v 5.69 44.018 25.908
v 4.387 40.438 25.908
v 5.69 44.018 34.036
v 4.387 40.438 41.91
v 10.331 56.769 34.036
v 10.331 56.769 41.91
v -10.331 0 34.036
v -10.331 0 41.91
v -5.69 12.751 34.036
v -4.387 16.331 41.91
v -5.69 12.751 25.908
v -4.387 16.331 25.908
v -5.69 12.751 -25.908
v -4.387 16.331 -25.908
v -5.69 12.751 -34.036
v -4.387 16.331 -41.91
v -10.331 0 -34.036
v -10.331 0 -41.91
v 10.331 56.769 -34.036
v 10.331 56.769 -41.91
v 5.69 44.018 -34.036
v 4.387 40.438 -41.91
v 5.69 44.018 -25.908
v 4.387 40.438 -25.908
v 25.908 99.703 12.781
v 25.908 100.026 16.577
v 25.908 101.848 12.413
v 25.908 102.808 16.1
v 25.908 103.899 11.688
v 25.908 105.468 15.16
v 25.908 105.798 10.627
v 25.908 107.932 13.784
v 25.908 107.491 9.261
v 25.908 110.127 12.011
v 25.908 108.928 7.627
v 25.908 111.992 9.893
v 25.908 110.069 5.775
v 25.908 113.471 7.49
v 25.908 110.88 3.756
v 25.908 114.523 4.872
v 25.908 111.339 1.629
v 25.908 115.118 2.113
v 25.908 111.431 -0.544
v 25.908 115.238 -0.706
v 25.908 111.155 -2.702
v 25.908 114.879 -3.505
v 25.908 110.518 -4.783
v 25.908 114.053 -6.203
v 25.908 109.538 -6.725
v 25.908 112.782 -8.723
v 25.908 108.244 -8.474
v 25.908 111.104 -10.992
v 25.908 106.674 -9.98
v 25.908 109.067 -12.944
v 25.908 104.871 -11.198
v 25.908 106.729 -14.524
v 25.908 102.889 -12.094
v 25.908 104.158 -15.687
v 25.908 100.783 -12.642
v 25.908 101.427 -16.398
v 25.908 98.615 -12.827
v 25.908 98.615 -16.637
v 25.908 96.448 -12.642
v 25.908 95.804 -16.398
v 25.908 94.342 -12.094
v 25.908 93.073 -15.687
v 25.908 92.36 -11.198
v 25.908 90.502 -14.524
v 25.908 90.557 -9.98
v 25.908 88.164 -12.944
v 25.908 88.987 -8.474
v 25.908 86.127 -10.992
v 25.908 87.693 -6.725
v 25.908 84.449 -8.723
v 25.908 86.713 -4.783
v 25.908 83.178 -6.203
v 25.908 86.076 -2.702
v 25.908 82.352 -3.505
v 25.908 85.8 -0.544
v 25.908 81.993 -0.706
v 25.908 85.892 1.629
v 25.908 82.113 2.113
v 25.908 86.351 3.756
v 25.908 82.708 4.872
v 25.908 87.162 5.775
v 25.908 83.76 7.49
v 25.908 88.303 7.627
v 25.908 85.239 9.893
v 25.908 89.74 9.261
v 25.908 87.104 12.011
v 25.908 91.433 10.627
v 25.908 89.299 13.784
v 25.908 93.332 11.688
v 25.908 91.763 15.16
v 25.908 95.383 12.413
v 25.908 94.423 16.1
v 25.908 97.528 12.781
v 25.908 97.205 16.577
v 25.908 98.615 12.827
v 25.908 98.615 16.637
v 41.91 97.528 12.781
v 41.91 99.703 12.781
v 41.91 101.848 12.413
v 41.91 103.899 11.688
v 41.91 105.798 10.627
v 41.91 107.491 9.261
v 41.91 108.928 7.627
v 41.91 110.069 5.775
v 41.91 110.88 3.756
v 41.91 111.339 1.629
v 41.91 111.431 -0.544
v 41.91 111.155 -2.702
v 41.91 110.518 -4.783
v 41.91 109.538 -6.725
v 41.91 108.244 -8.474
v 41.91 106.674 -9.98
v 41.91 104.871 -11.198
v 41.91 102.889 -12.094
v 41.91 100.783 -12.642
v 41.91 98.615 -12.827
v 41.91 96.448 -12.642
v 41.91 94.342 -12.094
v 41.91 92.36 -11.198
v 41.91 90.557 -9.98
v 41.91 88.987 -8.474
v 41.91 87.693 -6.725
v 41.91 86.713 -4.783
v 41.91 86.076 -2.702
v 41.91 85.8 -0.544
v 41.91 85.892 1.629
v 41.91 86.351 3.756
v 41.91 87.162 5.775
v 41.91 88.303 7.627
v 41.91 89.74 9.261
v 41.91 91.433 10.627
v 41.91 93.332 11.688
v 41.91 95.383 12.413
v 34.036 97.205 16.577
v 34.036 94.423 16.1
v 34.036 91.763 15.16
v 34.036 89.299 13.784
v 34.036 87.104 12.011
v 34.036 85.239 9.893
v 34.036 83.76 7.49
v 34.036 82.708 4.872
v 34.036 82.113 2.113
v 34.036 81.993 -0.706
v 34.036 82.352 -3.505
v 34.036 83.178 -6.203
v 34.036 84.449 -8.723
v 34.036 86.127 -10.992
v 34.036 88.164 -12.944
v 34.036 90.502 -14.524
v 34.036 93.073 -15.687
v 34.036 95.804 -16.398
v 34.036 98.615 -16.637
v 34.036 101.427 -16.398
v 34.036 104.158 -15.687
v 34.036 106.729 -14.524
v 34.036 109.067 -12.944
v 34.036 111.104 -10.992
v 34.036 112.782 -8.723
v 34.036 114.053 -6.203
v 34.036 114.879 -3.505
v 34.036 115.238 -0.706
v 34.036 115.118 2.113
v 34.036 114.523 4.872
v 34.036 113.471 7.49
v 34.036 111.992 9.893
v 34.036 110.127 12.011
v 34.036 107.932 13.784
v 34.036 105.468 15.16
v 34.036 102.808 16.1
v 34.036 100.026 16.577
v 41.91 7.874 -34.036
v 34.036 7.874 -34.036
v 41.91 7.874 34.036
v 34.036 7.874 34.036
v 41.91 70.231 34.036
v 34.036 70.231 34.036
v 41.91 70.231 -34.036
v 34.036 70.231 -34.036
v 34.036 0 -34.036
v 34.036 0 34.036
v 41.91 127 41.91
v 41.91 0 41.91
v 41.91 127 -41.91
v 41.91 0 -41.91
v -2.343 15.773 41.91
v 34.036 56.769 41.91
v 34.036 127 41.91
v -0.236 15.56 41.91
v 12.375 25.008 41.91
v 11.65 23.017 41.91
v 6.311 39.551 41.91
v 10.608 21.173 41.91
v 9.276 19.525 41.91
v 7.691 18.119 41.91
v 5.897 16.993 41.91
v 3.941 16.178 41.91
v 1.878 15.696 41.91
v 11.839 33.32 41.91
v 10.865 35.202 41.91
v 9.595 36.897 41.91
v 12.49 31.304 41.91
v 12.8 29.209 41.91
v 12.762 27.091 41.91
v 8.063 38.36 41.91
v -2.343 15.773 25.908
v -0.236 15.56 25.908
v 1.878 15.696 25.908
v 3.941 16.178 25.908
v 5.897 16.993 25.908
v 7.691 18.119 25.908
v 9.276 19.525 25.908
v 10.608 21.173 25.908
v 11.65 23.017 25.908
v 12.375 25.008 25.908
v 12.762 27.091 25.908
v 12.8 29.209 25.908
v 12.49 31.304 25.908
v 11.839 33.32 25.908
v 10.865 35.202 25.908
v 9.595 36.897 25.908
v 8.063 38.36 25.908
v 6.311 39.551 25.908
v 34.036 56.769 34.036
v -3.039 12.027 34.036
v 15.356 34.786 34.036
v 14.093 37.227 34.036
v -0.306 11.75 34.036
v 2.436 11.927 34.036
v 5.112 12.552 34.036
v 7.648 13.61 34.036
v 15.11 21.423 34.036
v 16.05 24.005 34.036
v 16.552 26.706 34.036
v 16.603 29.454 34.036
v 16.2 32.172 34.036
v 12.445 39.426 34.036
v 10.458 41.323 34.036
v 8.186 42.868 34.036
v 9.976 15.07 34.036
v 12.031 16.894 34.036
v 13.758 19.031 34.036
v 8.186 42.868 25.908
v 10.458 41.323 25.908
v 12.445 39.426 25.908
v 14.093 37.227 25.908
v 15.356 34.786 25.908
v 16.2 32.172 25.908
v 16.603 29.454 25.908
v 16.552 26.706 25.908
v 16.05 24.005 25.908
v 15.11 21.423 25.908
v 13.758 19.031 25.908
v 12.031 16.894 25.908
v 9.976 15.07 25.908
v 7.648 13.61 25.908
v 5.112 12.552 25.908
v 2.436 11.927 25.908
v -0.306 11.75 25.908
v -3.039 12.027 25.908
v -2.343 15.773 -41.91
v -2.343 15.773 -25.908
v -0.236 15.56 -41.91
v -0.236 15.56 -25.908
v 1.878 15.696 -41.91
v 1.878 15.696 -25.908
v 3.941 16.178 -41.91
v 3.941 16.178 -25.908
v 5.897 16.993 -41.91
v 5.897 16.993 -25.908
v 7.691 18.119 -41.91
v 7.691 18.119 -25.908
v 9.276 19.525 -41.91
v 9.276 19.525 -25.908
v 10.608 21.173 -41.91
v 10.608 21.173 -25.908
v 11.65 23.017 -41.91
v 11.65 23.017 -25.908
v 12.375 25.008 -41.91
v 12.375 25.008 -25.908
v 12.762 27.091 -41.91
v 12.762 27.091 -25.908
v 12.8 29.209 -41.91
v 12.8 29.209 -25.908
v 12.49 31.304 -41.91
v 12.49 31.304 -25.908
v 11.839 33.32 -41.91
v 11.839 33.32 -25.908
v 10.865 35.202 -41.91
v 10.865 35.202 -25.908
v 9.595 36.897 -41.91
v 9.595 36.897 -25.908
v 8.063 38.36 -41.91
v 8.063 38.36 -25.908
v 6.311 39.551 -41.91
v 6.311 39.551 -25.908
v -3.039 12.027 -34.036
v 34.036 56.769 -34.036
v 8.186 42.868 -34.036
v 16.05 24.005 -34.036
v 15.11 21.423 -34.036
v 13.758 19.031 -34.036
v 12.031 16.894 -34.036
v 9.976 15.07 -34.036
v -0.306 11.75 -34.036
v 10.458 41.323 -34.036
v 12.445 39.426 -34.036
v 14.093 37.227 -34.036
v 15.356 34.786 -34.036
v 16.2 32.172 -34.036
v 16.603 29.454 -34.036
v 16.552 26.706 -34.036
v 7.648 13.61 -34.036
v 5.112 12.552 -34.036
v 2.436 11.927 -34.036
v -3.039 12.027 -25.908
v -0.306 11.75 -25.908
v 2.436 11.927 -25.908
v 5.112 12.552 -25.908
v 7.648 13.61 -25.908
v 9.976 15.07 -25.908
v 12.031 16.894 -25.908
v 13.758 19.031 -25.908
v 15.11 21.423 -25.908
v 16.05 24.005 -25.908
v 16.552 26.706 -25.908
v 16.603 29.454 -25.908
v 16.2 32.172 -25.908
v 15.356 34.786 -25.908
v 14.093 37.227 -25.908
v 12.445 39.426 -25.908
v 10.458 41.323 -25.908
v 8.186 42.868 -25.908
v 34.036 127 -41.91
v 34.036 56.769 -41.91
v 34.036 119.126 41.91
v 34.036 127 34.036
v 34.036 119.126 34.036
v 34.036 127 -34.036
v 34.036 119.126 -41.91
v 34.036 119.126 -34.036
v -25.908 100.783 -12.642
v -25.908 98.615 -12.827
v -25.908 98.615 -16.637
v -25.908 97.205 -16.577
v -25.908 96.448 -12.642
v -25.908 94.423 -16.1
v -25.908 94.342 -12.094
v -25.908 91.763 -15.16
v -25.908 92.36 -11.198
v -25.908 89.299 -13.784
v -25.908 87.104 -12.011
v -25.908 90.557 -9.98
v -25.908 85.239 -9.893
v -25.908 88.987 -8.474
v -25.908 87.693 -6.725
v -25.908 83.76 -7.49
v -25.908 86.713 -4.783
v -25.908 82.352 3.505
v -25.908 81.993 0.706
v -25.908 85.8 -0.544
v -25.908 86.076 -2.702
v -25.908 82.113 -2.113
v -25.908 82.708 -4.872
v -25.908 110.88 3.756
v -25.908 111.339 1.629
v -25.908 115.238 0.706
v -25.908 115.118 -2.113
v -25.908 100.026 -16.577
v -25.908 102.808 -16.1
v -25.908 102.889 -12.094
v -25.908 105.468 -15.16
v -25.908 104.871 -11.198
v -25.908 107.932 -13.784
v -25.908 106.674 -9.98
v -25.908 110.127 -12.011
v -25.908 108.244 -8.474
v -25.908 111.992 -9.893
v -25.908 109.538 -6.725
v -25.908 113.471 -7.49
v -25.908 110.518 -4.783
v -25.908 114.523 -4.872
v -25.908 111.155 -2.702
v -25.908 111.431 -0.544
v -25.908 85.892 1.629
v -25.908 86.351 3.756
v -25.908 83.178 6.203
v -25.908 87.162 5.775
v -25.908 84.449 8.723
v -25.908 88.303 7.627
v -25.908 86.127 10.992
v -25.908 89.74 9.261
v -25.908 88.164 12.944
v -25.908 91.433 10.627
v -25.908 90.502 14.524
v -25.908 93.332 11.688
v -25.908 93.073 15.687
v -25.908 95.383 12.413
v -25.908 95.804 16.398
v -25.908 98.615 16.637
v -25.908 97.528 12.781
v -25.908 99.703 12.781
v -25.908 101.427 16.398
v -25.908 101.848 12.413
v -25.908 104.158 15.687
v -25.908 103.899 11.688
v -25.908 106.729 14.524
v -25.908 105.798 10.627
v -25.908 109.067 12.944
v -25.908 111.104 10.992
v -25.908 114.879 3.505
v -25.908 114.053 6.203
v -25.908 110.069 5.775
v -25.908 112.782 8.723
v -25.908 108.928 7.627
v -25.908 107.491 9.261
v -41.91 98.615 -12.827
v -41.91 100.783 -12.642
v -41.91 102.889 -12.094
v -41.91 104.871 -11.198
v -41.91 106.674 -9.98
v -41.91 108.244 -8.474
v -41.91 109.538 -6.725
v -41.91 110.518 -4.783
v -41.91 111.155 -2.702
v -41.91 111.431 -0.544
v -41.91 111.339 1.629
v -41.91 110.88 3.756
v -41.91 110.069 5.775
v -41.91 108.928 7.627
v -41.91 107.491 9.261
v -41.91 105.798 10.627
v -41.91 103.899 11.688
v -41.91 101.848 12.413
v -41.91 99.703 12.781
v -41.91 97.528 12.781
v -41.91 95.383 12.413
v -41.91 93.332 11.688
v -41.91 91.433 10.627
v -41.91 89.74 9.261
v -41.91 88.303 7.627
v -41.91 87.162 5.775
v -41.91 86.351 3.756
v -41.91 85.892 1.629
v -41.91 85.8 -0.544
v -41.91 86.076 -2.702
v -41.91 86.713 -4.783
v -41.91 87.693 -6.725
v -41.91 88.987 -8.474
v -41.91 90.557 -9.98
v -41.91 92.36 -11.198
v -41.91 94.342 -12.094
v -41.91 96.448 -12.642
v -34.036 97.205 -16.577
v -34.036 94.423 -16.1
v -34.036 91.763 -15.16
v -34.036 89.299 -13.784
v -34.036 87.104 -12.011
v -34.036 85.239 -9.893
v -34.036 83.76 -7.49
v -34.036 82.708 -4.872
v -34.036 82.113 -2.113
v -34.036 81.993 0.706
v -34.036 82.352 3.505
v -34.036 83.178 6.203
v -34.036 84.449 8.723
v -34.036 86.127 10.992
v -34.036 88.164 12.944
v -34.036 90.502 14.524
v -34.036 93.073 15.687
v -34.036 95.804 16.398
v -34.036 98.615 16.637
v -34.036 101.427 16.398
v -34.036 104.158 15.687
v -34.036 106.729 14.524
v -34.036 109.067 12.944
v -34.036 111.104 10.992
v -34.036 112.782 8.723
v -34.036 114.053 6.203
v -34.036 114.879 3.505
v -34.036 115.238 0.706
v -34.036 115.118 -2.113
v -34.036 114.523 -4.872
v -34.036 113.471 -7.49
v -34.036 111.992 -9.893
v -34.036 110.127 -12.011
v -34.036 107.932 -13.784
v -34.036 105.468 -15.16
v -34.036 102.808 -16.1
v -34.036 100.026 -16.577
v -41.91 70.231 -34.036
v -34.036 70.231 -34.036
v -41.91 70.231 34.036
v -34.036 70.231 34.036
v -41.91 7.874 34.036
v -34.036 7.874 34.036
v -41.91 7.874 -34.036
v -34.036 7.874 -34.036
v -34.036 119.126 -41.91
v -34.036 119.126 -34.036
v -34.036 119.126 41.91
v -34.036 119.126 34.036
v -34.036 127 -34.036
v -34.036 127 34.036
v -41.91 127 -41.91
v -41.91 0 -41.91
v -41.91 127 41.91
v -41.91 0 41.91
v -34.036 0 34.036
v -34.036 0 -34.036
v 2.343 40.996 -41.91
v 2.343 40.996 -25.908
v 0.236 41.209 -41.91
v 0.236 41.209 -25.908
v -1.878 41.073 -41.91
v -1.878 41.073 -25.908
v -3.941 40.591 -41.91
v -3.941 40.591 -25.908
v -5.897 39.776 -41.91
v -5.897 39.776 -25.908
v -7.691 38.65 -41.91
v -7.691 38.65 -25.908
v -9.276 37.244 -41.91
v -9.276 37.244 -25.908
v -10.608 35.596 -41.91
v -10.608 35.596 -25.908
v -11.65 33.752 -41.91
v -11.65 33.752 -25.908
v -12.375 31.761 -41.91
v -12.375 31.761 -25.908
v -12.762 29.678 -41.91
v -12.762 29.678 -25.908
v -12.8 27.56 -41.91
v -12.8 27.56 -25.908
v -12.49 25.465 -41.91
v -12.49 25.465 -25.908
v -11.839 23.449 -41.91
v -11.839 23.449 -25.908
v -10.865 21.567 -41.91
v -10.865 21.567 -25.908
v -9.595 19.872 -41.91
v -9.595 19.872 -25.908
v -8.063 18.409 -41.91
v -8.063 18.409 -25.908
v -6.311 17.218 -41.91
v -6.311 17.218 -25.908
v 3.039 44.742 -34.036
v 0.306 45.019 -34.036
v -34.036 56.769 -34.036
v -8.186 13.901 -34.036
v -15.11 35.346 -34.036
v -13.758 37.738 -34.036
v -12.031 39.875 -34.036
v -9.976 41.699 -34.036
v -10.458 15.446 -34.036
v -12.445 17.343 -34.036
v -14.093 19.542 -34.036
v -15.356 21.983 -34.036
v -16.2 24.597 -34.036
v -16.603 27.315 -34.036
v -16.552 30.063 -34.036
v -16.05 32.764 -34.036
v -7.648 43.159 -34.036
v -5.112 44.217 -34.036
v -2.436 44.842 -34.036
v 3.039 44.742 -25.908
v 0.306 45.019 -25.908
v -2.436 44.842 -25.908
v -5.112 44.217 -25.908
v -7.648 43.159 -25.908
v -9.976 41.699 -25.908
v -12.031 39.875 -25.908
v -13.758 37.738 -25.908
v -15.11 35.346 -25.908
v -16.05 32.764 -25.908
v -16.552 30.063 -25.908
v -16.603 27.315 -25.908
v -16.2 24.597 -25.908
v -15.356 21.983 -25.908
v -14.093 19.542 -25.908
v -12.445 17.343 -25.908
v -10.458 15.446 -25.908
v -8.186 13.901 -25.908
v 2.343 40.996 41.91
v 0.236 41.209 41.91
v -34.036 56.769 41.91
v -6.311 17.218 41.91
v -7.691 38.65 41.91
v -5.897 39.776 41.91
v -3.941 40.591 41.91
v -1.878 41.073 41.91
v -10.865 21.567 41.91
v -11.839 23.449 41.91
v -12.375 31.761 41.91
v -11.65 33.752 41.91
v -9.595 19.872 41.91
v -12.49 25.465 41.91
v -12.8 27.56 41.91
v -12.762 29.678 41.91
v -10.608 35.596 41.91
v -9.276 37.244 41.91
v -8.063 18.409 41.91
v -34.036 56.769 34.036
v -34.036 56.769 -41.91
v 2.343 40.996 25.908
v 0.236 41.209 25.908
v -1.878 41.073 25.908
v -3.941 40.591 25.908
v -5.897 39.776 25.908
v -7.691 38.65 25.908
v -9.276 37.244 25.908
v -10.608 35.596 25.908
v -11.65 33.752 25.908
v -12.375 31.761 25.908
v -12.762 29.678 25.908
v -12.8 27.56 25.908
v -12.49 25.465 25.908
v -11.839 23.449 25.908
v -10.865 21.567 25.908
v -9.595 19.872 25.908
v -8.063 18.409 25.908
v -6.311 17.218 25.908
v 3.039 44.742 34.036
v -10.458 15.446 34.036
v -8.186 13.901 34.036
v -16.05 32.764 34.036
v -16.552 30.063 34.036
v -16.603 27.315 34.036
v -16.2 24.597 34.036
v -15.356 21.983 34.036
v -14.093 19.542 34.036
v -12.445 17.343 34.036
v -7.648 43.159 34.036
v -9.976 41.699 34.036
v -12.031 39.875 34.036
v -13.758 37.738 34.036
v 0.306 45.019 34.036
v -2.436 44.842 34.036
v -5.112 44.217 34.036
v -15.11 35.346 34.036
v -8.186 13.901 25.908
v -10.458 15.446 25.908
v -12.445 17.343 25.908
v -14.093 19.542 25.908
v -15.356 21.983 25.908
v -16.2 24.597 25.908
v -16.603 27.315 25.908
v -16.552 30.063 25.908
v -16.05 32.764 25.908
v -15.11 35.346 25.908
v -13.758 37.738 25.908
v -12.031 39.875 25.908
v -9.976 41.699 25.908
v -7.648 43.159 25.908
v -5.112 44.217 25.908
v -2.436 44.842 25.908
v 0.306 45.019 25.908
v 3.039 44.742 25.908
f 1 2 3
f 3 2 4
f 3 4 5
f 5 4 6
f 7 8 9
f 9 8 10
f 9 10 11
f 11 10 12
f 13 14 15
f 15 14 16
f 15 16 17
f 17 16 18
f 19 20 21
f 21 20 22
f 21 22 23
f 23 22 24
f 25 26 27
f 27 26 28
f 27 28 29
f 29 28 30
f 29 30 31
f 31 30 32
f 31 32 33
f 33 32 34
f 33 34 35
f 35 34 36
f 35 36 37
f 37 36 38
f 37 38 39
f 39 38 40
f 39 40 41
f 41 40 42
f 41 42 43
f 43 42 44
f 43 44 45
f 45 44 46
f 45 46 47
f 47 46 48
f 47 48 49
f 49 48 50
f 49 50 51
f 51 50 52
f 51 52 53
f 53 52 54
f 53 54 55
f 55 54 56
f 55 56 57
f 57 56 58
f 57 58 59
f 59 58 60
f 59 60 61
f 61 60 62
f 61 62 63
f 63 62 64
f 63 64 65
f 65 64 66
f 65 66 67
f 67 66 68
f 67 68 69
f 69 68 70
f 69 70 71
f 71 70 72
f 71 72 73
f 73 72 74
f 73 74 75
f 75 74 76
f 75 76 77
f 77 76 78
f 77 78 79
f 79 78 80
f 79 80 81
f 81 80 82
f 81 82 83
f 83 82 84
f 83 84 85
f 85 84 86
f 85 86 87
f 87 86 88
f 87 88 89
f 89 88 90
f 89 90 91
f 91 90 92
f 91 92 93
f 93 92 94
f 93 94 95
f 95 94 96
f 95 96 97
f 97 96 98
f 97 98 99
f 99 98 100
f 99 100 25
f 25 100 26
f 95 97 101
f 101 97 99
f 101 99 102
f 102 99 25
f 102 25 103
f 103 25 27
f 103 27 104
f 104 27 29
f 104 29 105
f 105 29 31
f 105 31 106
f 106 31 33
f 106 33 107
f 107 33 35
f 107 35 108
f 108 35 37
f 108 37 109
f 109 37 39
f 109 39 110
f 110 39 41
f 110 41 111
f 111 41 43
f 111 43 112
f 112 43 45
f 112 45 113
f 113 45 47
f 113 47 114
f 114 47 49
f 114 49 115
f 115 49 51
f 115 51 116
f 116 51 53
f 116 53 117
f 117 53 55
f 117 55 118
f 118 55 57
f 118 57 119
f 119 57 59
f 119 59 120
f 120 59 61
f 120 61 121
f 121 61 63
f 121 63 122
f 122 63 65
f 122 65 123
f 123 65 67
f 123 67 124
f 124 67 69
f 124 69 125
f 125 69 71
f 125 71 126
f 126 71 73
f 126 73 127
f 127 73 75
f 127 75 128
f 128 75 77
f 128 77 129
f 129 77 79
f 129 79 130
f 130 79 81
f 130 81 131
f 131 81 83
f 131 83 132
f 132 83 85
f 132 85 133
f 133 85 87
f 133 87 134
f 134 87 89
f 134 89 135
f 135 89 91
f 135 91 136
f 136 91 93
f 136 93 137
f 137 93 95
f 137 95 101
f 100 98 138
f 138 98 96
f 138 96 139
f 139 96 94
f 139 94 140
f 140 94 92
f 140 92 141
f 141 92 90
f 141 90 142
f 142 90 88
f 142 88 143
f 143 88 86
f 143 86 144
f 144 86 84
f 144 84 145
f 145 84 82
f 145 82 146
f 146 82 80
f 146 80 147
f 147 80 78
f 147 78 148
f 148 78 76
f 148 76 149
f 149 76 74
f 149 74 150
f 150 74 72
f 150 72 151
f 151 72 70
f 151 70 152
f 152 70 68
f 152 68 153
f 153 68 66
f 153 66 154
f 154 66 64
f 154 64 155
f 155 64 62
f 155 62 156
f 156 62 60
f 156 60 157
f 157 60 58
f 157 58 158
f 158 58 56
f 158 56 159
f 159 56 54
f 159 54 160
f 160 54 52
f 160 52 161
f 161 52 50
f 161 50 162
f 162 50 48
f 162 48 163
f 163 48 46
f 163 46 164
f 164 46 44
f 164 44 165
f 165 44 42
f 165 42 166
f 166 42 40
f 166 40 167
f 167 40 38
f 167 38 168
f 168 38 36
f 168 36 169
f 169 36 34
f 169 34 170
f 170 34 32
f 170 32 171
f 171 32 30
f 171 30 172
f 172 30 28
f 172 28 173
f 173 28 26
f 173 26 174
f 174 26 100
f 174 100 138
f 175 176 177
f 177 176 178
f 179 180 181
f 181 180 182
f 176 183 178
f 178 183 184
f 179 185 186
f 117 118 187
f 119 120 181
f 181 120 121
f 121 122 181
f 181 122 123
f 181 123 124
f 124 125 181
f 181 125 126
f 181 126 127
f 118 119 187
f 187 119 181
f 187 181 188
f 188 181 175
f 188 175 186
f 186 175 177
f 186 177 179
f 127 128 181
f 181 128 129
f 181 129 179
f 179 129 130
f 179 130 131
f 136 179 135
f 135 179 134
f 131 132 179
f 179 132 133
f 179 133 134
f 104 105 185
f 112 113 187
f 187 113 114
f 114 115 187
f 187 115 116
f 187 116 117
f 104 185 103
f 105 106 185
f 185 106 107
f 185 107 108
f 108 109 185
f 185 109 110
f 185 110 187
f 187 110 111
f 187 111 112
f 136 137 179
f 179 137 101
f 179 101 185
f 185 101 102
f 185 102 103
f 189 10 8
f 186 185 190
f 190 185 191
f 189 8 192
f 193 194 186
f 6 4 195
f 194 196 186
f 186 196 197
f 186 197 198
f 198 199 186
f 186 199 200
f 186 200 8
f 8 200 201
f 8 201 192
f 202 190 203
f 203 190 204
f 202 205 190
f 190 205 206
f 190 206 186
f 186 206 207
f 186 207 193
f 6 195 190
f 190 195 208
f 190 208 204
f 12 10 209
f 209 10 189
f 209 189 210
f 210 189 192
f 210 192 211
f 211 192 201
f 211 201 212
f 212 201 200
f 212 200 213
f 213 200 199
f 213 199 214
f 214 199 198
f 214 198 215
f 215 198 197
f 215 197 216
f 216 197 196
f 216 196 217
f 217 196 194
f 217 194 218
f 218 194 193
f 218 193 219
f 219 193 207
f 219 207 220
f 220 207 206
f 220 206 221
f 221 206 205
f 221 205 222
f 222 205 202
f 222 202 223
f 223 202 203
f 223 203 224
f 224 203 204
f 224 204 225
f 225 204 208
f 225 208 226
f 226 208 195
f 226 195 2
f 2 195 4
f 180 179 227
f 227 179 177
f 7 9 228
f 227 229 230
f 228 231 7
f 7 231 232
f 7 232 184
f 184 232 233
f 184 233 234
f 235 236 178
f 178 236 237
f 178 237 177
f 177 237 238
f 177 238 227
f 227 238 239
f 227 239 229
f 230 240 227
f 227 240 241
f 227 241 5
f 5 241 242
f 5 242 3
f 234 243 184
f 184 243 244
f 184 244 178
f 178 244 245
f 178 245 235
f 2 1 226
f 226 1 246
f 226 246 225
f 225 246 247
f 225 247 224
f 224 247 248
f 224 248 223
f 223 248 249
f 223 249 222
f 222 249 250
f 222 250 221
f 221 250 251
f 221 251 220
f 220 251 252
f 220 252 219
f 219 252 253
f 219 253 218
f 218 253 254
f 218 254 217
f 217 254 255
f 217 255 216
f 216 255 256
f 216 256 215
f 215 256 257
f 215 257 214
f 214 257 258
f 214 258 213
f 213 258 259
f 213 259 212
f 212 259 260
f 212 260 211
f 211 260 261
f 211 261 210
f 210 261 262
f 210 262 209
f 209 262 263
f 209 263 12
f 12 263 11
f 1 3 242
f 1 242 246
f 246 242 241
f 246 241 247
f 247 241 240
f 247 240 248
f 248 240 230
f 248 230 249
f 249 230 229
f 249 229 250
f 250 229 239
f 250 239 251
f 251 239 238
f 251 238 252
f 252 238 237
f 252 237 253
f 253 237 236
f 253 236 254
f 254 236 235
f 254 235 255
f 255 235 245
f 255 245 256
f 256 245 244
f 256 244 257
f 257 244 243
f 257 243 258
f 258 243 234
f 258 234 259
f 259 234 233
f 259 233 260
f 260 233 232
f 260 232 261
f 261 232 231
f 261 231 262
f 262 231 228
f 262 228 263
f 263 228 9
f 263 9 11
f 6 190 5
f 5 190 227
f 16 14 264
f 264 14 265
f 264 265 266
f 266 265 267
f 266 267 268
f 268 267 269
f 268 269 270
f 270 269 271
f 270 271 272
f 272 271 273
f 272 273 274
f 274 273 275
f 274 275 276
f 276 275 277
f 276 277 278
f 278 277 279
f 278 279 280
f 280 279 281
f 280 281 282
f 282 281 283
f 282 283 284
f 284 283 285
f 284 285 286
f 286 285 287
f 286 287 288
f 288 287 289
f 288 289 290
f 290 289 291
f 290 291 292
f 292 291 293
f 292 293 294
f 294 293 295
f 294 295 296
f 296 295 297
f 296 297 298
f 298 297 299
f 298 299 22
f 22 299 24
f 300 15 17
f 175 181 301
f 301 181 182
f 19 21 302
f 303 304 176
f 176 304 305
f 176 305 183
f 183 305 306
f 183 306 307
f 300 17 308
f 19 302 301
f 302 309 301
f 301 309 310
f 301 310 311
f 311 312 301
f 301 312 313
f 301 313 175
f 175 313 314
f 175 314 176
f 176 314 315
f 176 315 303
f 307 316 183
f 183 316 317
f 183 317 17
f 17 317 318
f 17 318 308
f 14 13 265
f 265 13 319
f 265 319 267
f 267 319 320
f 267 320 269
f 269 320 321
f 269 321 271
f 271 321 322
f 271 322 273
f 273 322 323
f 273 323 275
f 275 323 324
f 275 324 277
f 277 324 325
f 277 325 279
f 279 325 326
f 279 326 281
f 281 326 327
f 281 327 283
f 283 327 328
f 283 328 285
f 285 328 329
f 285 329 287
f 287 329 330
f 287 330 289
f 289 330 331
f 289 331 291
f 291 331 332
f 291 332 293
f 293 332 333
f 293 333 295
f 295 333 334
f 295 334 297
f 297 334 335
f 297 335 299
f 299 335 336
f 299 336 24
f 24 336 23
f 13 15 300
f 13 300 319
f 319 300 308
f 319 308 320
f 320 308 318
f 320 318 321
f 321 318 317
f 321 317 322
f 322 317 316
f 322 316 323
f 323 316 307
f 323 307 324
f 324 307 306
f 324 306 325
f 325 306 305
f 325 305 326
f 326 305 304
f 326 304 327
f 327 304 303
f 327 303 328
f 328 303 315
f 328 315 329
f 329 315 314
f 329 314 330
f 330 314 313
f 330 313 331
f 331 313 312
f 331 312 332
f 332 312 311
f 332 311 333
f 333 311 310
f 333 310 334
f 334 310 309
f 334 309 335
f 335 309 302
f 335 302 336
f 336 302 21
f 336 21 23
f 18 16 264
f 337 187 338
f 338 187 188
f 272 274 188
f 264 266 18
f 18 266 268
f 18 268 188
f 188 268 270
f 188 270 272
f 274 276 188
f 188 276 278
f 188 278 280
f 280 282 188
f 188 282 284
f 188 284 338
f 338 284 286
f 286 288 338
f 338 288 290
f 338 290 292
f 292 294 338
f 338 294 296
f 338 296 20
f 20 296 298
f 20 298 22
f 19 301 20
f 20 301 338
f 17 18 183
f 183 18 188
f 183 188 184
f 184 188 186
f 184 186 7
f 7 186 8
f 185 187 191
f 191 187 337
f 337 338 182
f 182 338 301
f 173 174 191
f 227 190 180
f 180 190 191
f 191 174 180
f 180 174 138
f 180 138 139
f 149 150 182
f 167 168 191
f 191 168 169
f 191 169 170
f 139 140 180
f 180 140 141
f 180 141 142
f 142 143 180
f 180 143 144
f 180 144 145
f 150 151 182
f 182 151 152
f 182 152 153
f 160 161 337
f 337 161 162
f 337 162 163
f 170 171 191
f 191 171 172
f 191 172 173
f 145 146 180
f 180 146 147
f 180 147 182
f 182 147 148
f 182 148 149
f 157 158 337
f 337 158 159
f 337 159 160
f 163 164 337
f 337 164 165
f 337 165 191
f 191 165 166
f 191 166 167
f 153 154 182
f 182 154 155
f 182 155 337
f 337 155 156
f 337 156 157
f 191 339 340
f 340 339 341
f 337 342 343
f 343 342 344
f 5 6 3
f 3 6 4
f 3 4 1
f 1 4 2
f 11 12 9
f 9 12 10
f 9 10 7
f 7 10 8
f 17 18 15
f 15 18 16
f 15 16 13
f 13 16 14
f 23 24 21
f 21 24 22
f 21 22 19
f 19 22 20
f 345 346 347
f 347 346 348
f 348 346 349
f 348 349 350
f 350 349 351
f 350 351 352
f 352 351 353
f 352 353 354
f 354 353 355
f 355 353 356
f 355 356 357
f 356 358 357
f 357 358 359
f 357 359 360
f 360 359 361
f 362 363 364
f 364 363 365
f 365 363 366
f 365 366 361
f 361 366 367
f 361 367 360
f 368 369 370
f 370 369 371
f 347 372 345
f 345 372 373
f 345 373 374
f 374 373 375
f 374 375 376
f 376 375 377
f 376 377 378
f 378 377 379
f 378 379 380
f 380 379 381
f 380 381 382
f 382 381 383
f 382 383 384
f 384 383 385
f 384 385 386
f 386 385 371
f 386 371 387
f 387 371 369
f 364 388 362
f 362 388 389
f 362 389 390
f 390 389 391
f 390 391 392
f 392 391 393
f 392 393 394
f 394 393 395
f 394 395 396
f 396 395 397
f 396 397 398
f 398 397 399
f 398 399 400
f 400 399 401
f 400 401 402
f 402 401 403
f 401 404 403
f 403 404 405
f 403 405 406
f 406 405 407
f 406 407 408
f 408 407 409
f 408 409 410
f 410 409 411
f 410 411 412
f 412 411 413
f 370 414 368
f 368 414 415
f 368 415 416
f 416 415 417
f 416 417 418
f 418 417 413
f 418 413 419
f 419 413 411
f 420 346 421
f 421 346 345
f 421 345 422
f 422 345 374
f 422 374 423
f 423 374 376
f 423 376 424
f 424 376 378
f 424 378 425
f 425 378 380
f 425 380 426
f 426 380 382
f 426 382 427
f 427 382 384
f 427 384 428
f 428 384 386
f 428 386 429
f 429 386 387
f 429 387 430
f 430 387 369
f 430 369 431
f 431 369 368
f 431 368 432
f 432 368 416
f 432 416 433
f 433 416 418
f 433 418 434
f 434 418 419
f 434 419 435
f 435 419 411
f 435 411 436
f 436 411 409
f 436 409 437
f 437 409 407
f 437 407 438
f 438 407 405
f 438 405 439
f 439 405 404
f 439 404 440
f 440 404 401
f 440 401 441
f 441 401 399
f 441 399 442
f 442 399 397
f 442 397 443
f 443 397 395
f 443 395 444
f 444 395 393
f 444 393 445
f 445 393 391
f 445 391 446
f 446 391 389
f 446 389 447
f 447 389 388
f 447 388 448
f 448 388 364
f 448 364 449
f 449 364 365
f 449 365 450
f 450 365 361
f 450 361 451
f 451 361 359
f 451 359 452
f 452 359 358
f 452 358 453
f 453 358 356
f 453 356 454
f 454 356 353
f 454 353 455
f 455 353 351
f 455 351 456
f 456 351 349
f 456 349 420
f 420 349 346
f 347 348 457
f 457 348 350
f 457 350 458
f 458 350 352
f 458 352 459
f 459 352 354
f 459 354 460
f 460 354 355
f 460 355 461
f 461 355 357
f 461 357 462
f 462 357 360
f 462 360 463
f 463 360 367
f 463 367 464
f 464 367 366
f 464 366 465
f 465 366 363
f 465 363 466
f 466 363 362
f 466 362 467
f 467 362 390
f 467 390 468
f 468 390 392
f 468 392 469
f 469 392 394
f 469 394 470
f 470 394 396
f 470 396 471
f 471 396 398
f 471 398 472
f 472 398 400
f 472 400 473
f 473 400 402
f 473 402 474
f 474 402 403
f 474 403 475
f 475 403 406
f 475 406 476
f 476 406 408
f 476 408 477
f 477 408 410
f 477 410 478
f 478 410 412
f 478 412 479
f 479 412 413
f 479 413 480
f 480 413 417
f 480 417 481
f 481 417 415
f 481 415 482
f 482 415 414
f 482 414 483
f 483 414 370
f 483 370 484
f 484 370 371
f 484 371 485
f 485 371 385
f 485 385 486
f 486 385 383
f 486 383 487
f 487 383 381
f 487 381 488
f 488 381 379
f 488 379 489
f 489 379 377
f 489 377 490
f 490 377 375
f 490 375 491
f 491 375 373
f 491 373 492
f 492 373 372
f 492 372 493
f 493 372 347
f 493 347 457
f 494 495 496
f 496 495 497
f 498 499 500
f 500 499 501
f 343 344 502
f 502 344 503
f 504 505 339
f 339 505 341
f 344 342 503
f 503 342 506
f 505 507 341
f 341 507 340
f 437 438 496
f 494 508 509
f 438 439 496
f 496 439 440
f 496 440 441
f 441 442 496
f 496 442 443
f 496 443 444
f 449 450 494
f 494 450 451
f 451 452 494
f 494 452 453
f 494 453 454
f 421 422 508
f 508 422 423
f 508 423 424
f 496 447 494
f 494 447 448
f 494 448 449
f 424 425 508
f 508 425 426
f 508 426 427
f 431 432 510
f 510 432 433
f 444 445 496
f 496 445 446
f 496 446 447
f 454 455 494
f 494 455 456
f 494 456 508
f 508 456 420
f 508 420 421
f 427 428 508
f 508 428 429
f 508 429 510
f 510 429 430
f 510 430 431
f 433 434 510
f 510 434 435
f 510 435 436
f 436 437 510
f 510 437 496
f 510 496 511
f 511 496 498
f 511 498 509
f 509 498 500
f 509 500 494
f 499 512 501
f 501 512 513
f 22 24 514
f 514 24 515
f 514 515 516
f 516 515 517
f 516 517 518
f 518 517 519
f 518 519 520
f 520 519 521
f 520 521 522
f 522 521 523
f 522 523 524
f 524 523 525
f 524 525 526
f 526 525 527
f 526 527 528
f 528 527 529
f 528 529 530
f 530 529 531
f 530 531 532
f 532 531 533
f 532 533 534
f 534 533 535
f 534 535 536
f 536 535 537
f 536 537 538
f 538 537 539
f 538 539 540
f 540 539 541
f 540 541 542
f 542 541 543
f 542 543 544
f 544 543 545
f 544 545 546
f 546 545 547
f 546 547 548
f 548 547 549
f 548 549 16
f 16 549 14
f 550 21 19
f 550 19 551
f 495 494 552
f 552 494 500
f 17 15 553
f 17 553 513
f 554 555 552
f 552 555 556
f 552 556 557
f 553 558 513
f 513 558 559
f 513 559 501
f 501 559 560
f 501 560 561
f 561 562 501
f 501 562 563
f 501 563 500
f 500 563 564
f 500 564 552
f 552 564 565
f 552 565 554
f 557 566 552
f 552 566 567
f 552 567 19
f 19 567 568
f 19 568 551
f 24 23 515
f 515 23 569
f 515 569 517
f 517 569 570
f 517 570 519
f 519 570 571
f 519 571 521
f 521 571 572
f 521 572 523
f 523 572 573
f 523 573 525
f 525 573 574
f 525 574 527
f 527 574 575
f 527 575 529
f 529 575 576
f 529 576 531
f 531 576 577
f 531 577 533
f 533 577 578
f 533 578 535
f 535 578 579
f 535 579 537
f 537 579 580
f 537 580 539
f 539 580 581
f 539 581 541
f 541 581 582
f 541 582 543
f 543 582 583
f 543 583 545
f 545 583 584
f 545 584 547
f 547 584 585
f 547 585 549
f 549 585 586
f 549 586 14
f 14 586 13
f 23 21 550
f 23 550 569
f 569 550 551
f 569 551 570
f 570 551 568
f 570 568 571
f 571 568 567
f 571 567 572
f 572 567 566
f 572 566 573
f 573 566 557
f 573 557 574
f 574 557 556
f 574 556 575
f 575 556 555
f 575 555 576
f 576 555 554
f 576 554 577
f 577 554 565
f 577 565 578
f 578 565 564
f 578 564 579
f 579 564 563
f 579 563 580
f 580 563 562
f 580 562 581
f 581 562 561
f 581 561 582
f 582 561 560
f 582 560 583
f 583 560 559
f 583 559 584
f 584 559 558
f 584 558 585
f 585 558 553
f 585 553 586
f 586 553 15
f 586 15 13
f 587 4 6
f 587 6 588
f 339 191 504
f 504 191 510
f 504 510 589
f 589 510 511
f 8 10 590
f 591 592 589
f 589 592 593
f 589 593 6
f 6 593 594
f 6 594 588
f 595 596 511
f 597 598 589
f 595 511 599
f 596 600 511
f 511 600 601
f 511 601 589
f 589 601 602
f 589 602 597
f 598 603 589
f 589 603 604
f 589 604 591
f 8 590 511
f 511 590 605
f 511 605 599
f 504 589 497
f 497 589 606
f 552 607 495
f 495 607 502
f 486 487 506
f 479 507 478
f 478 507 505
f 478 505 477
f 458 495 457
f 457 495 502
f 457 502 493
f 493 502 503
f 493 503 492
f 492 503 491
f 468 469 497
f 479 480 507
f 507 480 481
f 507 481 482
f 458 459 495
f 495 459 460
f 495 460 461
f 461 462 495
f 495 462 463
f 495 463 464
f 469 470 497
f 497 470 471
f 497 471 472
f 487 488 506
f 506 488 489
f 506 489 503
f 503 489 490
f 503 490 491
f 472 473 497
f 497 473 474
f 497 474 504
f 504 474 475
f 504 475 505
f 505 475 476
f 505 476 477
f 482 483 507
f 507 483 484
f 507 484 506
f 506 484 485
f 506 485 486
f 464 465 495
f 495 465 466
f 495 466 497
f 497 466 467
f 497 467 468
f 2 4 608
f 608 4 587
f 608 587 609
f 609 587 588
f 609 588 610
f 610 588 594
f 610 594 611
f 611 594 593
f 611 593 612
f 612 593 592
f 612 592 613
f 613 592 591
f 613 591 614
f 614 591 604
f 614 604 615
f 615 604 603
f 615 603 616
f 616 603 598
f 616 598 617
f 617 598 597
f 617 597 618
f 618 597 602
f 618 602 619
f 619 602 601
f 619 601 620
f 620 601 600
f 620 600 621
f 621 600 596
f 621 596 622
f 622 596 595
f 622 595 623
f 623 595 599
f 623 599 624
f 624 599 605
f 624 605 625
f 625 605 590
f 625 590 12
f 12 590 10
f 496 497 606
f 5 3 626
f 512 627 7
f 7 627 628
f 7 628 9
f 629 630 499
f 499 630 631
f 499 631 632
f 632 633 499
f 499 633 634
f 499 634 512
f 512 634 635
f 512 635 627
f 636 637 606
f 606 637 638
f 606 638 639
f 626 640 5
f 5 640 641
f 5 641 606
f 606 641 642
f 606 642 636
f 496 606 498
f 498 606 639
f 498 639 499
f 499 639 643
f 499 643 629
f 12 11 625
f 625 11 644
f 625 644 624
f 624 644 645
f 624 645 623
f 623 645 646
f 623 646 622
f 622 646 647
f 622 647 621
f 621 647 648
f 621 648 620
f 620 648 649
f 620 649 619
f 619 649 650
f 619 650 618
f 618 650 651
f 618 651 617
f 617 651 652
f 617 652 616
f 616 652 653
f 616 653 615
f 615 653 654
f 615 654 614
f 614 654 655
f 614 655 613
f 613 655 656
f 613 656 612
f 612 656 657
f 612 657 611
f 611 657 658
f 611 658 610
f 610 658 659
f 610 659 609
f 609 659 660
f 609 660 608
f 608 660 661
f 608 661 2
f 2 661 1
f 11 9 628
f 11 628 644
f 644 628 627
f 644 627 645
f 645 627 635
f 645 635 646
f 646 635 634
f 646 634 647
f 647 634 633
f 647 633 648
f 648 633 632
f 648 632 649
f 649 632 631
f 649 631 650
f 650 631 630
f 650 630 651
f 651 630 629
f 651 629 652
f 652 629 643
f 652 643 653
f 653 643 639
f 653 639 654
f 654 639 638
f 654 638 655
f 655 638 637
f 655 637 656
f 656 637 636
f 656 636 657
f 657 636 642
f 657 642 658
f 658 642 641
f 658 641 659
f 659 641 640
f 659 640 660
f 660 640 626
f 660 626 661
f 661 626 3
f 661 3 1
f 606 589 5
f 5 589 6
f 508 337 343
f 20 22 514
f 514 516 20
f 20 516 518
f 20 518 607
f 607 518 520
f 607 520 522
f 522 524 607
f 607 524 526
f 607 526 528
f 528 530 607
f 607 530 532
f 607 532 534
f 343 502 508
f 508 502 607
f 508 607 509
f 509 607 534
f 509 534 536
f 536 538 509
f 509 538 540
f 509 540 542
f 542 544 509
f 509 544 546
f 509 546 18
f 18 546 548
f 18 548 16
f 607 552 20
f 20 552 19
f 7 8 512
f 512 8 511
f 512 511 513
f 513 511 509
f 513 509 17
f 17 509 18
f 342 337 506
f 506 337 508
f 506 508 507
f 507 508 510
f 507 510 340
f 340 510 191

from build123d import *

# Parameters (mm, degrees)
SKETCH2_W                = 83.82
SKETCH2_H                = 83.82
BOSS_EXTRUDE1_DEPTH      = 127
SKETCH3_R                = 12.827
CUT_EXTRUDE1_DEPTH       = 158.832951249
SKETCH4_R                = 12.827
CUT_EXTRUDE2_DEPTH       = 158.832951249
SKETCH5_W                = 68.072
SKETCH5_H                = 68.072
CUT_EXTRUDE3_DEPTH       = 141.149549411
SKETCH6_W                = 68.072
SKETCH6_H                = 62.357
CUT_EXTRUDE4_DEPTH       = 158.832951249
SKETCH7_W                = 68.072
SKETCH7_H                = 62.357
CUT_EXTRUDE5_DEPTH       = 158.832951249
BOSS_EXTRUDE6_START      = 8.128
SKETCH18_R               = 16.637
SKETCH18_R_2             = 12.827
BOSS_EXTRUDE6_DEPTH      = 8.128
SKETCH19_R               = 16.637
SKETCH19_R_2             = 12.827
BOSS_EXTRUDE7_DEPTH      = 8.128
SKETCH20_R               = 16.637
SKETCH20_R_2             = 12.827
BOSS_EXTRUDE8_DEPTH      = 8.128
BOSS_EXTRUDE9_START      = 8.128
SKETCH21_R               = 16.637
SKETCH21_R_2             = 12.827
BOSS_EXTRUDE9_DEPTH      = 8.128
INTERSECT1_START         = -41.91
INTERSECT1_DEPTH         = 83.82
INTERSECT1_START_2       = -25.908
INTERSECT1_2_OUTLINE_W   = 8.128
INTERSECT1_2_OUTLINE_H   = 56.769
INTERSECT1_2_DEPTH       = 51.816
INTERSECT1_3_OUTLINE_W   = 7.874
INTERSECT1_3_OUTLINE_H   = 56.769
INTERSECT1_3_OUTLINE_H_2 = 7.874
INTERSECT1_3_DEPTH       = 83.82
INTERSECT1_4_DEPTH       = 7.874
INTERSECT1_START_3       = 34.036
INTERSECT1_5_DEPTH       = 7.874
INTERSECT1_START_4       = -34.036
INTERSECT1_6_DEPTH       = 8.128
INTERSECT1_START_5       = 25.908
INTERSECT1_7_DEPTH       = 8.128
INTERSECT1_8_OUTLINE_R   = 12.827
INTERSECT1_8_DEPTH       = 7.874
INTERSECT1_9_OUTLINE_R   = 16.637
INTERSECT1_9_OUTLINE_R_2 = 12.827
INTERSECT1_9_DEPTH       = 8.128


with BuildPart() as part:
    # Sketch2 → Boss-Extrude1 (new body)
    with BuildSketch(Plane(origin=(0, 0, 0), x_dir=(1, 0, 0), z_dir=(0, 1, 0))):
        Rectangle(SKETCH2_W, SKETCH2_H)
    extrude(amount=BOSS_EXTRUDE1_DEPTH)

    # Sketch3 → Cut-Extrude1 (cut, through all)
    with BuildSketch(Plane.XY.offset(41.91)):
        with Locations((0, 28.3845)):
            Circle(SKETCH3_R)
    extrude(amount=-CUT_EXTRUDE1_DEPTH, mode=Mode.SUBTRACT)

    # Sketch4 → Cut-Extrude2 (cut, through all)
    with BuildSketch(Plane(origin=(41.91, 0, 0), x_dir=(0, 0, -1), z_dir=(1, 0, 0))):
        with Locations((0, 98.6155)):
            Circle(SKETCH4_R)
    extrude(amount=-CUT_EXTRUDE2_DEPTH, mode=Mode.SUBTRACT)

    # Sketch5 → Cut-Extrude3 (cut, through all)
    with BuildSketch(Plane(origin=(0, 127, 0), x_dir=(1, 0, 0), z_dir=(0, 1, 0))):
        Rectangle(SKETCH5_W, SKETCH5_H)
    extrude(amount=-CUT_EXTRUDE3_DEPTH, mode=Mode.SUBTRACT)

    # Sketch6 → Cut-Extrude4 (cut, through all)
    with BuildSketch(Plane(origin=(41.91, 0, 0), x_dir=(0, 0, -1), z_dir=(1, 0, 0))):
        with Locations((0, 39.0525)):
            Rectangle(SKETCH6_W, SKETCH6_H)
    extrude(amount=-CUT_EXTRUDE4_DEPTH, mode=Mode.SUBTRACT)

    # Sketch7 → Cut-Extrude5 (cut, through all)
    with BuildSketch(Plane.XY.offset(41.91)):
        with Locations((0, 87.9475)):
            Rectangle(SKETCH7_W, SKETCH7_H)
    extrude(amount=-CUT_EXTRUDE5_DEPTH, mode=Mode.SUBTRACT)

    # Sketch18 → Boss-Extrude6 (add)
    with BuildSketch(Plane(origin=(-34.036, 0, 0), x_dir=(0, 0, -1), z_dir=(1, 0, 0)).offset(BOSS_EXTRUDE6_START)):
        with Locations(Location((0, 98.6155, 0), (0, 0, 180))):
            Circle(SKETCH18_R)
        with Locations((0, 98.6155)):
            Circle(SKETCH18_R_2, mode=Mode.SUBTRACT)
    extrude(amount=-BOSS_EXTRUDE6_DEPTH)

    # Sketch19 → Boss-Extrude7 (add)
    with BuildSketch(Plane.ZY.offset(-34.036)):
        with Locations((0, 98.6155)):
            Circle(SKETCH19_R)
        with Locations(Location((0, 98.6155, 0), (0, 0, 180))):
            Circle(SKETCH19_R_2, mode=Mode.SUBTRACT)
    extrude(amount=BOSS_EXTRUDE7_DEPTH)

    # Sketch20 → Boss-Extrude8 (add)
    with BuildSketch(Plane(origin=(0, 0, 34.036), x_dir=(-1, 0, 0), z_dir=(0, 0, -1))):
        with Locations(Location((0, 28.3845, 0), (0, 0, 180))):
            Circle(SKETCH20_R)
        with Locations(Location((0, 28.3845, 0), (0, 0, 180))):
            Circle(SKETCH20_R_2, mode=Mode.SUBTRACT)
    extrude(amount=BOSS_EXTRUDE8_DEPTH)

    # Sketch21 → Boss-Extrude9 (add)
    with BuildSketch(Plane.XY.offset(-34.036).offset(BOSS_EXTRUDE9_START)):
        with Locations((0, 28.3845)):
            Circle(SKETCH21_R)
        with Locations((0, 28.3845)):
            Circle(SKETCH21_R_2, mode=Mode.SUBTRACT)
    extrude(amount=-BOSS_EXTRUDE9_DEPTH)

    # Intersect1: read off the stored shape, not the designer's step
    # Intersect1 outline → Intersect1 (cut)
    with BuildSketch(Plane.XY.offset(INTERSECT1_START)):
        with BuildLine():
            Line((41.91, 127), (34.036, 127))
            Line((34.036, 127), (34.036, 56.769))
            Line((34.036, 56.769), (10.331113115, 56.769))
            Line((10.331113115, 56.769), (4.387092378, 40.437937247))
            ThreePointArc((4.387092378, 40.437937247), (12.053437247, 23.997407622), (-4.387092378, 16.331062753))
            Line((-4.387092378, 16.331062753), (-10.331113115, 0))
            Line((-10.331113115, 0), (41.91, 0))
            Line((41.91, 0), (41.91, 127))
        make_face()
    extrude(amount=INTERSECT1_DEPTH, mode=Mode.SUBTRACT)

    # Intersect1 2 outline → Intersect1 2 (cut)
    with BuildSketch(Plane.XY.offset(INTERSECT1_START_2)):
        with Locations((29.972, 98.6155)):
            Rectangle(INTERSECT1_2_OUTLINE_W, INTERSECT1_2_OUTLINE_H)
    extrude(amount=INTERSECT1_2_DEPTH, mode=Mode.SUBTRACT)


with BuildPart() as body_2:
    # Intersect1 3 outline → Intersect1 3 (new body)
    with BuildSketch(Plane.XY.offset(INTERSECT1_START)):
        with Locations((37.973, 98.6155)):
            Rectangle(INTERSECT1_3_OUTLINE_W, INTERSECT1_3_OUTLINE_H)
        with Locations((37.973, 3.937)):
            Rectangle(INTERSECT1_3_OUTLINE_W, INTERSECT1_3_OUTLINE_H_2)
    extrude(amount=INTERSECT1_3_DEPTH)

    # Intersect1 4 outline → Intersect1 4 (add)
    with BuildSketch(Plane.XY.offset(INTERSECT1_START)):
        with BuildLine():
            ThreePointArc((4.387092378, 40.437937247), (12.053437247, 23.997407622), (-4.387092378, 16.331062753))
            Line((-4.387092378, 16.331062753), (-10.331113115, 0))
            Line((-10.331113115, 0), (34.036, 0))
            Line((34.036, 0), (34.036, 7.874))
            Line((34.036, 7.874), (41.91, 7.874))
            Line((41.91, 7.874), (41.91, 70.231))
            Line((41.91, 70.231), (34.036, 70.231))
            Line((34.036, 70.231), (34.036, 56.769))
            Line((34.036, 56.769), (10.331113115, 56.769))
            Line((10.331113115, 56.769), (4.387092378, 40.437937247))
        make_face()
    extrude(amount=INTERSECT1_4_DEPTH)

    # Intersect1 5 outline → Intersect1 5 (add)
    with BuildSketch(Plane.XY.offset(INTERSECT1_START_3)):
        with BuildLine():
            ThreePointArc((4.387092378, 40.437937247), (12.053437247, 23.997407622), (-4.387092378, 16.331062753))
            Line((-4.387092378, 16.331062753), (-10.331113115, 0))
            Line((-10.331113115, 0), (34.036, 0))
            Line((34.036, 0), (34.036, 7.874))
            Line((34.036, 7.874), (41.91, 7.874))
            Line((41.91, 7.874), (41.91, 70.231))
            Line((41.91, 70.231), (34.036, 70.231))
            Line((34.036, 70.231), (34.036, 56.769))
            Line((34.036, 56.769), (10.331113115, 56.769))
            Line((10.331113115, 56.769), (4.387092378, 40.437937247))
        make_face()
    extrude(amount=INTERSECT1_5_DEPTH)

    # Intersect1 6 outline → Intersect1 6 (add)
    with BuildSketch(Plane.XY.offset(INTERSECT1_START_4)):
        with BuildLine():
            Line((5.690189125, 44.018166132), (4.387092378, 40.437937247))
            ThreePointArc((4.387092378, 40.437937247), (12.053437247, 23.997407622), (-4.387092378, 16.331062753))
            Line((-4.387092378, 16.331062753), (-5.690189125, 12.750833868))
            ThreePointArc((-5.690189125, 12.750833868), (15.633666132, 22.694310875), (5.690189125, 44.018166132))
        make_face()
    extrude(amount=INTERSECT1_6_DEPTH)

    # Intersect1 7 outline → Intersect1 7 (add)
    with BuildSketch(Plane.XY.offset(INTERSECT1_START_5)):
        with BuildLine():
            Line((5.690189125, 44.018166132), (4.387092378, 40.437937247))
            ThreePointArc((4.387092378, 40.437937247), (12.053437247, 23.997407622), (-4.387092378, 16.331062753))
            Line((-4.387092378, 16.331062753), (-5.690189125, 12.750833868))
            ThreePointArc((-5.690189125, 12.750833868), (15.633666132, 22.694310875), (5.690189125, 44.018166132))
        make_face()
    extrude(amount=INTERSECT1_7_DEPTH)

    # Intersect1 8 outline → Intersect1 8 (cut)
    with BuildSketch(Plane.YZ.offset(INTERSECT1_START_3)):
        with Locations((98.6155, 0)):
            Circle(INTERSECT1_8_OUTLINE_R)
    extrude(amount=INTERSECT1_8_DEPTH, mode=Mode.SUBTRACT)

    # Intersect1 9 outline → Intersect1 9 (add)
    with BuildSketch(Plane.YZ.offset(INTERSECT1_START_5)):
        with Locations((98.6155, 0)):
            Circle(INTERSECT1_9_OUTLINE_R)
        with Locations((98.6155, 0)):
            Circle(INTERSECT1_9_OUTLINE_R_2, mode=Mode.SUBTRACT)
    extrude(amount=INTERSECT1_9_DEPTH)


solid = Compound([part.part, body_2.part])
